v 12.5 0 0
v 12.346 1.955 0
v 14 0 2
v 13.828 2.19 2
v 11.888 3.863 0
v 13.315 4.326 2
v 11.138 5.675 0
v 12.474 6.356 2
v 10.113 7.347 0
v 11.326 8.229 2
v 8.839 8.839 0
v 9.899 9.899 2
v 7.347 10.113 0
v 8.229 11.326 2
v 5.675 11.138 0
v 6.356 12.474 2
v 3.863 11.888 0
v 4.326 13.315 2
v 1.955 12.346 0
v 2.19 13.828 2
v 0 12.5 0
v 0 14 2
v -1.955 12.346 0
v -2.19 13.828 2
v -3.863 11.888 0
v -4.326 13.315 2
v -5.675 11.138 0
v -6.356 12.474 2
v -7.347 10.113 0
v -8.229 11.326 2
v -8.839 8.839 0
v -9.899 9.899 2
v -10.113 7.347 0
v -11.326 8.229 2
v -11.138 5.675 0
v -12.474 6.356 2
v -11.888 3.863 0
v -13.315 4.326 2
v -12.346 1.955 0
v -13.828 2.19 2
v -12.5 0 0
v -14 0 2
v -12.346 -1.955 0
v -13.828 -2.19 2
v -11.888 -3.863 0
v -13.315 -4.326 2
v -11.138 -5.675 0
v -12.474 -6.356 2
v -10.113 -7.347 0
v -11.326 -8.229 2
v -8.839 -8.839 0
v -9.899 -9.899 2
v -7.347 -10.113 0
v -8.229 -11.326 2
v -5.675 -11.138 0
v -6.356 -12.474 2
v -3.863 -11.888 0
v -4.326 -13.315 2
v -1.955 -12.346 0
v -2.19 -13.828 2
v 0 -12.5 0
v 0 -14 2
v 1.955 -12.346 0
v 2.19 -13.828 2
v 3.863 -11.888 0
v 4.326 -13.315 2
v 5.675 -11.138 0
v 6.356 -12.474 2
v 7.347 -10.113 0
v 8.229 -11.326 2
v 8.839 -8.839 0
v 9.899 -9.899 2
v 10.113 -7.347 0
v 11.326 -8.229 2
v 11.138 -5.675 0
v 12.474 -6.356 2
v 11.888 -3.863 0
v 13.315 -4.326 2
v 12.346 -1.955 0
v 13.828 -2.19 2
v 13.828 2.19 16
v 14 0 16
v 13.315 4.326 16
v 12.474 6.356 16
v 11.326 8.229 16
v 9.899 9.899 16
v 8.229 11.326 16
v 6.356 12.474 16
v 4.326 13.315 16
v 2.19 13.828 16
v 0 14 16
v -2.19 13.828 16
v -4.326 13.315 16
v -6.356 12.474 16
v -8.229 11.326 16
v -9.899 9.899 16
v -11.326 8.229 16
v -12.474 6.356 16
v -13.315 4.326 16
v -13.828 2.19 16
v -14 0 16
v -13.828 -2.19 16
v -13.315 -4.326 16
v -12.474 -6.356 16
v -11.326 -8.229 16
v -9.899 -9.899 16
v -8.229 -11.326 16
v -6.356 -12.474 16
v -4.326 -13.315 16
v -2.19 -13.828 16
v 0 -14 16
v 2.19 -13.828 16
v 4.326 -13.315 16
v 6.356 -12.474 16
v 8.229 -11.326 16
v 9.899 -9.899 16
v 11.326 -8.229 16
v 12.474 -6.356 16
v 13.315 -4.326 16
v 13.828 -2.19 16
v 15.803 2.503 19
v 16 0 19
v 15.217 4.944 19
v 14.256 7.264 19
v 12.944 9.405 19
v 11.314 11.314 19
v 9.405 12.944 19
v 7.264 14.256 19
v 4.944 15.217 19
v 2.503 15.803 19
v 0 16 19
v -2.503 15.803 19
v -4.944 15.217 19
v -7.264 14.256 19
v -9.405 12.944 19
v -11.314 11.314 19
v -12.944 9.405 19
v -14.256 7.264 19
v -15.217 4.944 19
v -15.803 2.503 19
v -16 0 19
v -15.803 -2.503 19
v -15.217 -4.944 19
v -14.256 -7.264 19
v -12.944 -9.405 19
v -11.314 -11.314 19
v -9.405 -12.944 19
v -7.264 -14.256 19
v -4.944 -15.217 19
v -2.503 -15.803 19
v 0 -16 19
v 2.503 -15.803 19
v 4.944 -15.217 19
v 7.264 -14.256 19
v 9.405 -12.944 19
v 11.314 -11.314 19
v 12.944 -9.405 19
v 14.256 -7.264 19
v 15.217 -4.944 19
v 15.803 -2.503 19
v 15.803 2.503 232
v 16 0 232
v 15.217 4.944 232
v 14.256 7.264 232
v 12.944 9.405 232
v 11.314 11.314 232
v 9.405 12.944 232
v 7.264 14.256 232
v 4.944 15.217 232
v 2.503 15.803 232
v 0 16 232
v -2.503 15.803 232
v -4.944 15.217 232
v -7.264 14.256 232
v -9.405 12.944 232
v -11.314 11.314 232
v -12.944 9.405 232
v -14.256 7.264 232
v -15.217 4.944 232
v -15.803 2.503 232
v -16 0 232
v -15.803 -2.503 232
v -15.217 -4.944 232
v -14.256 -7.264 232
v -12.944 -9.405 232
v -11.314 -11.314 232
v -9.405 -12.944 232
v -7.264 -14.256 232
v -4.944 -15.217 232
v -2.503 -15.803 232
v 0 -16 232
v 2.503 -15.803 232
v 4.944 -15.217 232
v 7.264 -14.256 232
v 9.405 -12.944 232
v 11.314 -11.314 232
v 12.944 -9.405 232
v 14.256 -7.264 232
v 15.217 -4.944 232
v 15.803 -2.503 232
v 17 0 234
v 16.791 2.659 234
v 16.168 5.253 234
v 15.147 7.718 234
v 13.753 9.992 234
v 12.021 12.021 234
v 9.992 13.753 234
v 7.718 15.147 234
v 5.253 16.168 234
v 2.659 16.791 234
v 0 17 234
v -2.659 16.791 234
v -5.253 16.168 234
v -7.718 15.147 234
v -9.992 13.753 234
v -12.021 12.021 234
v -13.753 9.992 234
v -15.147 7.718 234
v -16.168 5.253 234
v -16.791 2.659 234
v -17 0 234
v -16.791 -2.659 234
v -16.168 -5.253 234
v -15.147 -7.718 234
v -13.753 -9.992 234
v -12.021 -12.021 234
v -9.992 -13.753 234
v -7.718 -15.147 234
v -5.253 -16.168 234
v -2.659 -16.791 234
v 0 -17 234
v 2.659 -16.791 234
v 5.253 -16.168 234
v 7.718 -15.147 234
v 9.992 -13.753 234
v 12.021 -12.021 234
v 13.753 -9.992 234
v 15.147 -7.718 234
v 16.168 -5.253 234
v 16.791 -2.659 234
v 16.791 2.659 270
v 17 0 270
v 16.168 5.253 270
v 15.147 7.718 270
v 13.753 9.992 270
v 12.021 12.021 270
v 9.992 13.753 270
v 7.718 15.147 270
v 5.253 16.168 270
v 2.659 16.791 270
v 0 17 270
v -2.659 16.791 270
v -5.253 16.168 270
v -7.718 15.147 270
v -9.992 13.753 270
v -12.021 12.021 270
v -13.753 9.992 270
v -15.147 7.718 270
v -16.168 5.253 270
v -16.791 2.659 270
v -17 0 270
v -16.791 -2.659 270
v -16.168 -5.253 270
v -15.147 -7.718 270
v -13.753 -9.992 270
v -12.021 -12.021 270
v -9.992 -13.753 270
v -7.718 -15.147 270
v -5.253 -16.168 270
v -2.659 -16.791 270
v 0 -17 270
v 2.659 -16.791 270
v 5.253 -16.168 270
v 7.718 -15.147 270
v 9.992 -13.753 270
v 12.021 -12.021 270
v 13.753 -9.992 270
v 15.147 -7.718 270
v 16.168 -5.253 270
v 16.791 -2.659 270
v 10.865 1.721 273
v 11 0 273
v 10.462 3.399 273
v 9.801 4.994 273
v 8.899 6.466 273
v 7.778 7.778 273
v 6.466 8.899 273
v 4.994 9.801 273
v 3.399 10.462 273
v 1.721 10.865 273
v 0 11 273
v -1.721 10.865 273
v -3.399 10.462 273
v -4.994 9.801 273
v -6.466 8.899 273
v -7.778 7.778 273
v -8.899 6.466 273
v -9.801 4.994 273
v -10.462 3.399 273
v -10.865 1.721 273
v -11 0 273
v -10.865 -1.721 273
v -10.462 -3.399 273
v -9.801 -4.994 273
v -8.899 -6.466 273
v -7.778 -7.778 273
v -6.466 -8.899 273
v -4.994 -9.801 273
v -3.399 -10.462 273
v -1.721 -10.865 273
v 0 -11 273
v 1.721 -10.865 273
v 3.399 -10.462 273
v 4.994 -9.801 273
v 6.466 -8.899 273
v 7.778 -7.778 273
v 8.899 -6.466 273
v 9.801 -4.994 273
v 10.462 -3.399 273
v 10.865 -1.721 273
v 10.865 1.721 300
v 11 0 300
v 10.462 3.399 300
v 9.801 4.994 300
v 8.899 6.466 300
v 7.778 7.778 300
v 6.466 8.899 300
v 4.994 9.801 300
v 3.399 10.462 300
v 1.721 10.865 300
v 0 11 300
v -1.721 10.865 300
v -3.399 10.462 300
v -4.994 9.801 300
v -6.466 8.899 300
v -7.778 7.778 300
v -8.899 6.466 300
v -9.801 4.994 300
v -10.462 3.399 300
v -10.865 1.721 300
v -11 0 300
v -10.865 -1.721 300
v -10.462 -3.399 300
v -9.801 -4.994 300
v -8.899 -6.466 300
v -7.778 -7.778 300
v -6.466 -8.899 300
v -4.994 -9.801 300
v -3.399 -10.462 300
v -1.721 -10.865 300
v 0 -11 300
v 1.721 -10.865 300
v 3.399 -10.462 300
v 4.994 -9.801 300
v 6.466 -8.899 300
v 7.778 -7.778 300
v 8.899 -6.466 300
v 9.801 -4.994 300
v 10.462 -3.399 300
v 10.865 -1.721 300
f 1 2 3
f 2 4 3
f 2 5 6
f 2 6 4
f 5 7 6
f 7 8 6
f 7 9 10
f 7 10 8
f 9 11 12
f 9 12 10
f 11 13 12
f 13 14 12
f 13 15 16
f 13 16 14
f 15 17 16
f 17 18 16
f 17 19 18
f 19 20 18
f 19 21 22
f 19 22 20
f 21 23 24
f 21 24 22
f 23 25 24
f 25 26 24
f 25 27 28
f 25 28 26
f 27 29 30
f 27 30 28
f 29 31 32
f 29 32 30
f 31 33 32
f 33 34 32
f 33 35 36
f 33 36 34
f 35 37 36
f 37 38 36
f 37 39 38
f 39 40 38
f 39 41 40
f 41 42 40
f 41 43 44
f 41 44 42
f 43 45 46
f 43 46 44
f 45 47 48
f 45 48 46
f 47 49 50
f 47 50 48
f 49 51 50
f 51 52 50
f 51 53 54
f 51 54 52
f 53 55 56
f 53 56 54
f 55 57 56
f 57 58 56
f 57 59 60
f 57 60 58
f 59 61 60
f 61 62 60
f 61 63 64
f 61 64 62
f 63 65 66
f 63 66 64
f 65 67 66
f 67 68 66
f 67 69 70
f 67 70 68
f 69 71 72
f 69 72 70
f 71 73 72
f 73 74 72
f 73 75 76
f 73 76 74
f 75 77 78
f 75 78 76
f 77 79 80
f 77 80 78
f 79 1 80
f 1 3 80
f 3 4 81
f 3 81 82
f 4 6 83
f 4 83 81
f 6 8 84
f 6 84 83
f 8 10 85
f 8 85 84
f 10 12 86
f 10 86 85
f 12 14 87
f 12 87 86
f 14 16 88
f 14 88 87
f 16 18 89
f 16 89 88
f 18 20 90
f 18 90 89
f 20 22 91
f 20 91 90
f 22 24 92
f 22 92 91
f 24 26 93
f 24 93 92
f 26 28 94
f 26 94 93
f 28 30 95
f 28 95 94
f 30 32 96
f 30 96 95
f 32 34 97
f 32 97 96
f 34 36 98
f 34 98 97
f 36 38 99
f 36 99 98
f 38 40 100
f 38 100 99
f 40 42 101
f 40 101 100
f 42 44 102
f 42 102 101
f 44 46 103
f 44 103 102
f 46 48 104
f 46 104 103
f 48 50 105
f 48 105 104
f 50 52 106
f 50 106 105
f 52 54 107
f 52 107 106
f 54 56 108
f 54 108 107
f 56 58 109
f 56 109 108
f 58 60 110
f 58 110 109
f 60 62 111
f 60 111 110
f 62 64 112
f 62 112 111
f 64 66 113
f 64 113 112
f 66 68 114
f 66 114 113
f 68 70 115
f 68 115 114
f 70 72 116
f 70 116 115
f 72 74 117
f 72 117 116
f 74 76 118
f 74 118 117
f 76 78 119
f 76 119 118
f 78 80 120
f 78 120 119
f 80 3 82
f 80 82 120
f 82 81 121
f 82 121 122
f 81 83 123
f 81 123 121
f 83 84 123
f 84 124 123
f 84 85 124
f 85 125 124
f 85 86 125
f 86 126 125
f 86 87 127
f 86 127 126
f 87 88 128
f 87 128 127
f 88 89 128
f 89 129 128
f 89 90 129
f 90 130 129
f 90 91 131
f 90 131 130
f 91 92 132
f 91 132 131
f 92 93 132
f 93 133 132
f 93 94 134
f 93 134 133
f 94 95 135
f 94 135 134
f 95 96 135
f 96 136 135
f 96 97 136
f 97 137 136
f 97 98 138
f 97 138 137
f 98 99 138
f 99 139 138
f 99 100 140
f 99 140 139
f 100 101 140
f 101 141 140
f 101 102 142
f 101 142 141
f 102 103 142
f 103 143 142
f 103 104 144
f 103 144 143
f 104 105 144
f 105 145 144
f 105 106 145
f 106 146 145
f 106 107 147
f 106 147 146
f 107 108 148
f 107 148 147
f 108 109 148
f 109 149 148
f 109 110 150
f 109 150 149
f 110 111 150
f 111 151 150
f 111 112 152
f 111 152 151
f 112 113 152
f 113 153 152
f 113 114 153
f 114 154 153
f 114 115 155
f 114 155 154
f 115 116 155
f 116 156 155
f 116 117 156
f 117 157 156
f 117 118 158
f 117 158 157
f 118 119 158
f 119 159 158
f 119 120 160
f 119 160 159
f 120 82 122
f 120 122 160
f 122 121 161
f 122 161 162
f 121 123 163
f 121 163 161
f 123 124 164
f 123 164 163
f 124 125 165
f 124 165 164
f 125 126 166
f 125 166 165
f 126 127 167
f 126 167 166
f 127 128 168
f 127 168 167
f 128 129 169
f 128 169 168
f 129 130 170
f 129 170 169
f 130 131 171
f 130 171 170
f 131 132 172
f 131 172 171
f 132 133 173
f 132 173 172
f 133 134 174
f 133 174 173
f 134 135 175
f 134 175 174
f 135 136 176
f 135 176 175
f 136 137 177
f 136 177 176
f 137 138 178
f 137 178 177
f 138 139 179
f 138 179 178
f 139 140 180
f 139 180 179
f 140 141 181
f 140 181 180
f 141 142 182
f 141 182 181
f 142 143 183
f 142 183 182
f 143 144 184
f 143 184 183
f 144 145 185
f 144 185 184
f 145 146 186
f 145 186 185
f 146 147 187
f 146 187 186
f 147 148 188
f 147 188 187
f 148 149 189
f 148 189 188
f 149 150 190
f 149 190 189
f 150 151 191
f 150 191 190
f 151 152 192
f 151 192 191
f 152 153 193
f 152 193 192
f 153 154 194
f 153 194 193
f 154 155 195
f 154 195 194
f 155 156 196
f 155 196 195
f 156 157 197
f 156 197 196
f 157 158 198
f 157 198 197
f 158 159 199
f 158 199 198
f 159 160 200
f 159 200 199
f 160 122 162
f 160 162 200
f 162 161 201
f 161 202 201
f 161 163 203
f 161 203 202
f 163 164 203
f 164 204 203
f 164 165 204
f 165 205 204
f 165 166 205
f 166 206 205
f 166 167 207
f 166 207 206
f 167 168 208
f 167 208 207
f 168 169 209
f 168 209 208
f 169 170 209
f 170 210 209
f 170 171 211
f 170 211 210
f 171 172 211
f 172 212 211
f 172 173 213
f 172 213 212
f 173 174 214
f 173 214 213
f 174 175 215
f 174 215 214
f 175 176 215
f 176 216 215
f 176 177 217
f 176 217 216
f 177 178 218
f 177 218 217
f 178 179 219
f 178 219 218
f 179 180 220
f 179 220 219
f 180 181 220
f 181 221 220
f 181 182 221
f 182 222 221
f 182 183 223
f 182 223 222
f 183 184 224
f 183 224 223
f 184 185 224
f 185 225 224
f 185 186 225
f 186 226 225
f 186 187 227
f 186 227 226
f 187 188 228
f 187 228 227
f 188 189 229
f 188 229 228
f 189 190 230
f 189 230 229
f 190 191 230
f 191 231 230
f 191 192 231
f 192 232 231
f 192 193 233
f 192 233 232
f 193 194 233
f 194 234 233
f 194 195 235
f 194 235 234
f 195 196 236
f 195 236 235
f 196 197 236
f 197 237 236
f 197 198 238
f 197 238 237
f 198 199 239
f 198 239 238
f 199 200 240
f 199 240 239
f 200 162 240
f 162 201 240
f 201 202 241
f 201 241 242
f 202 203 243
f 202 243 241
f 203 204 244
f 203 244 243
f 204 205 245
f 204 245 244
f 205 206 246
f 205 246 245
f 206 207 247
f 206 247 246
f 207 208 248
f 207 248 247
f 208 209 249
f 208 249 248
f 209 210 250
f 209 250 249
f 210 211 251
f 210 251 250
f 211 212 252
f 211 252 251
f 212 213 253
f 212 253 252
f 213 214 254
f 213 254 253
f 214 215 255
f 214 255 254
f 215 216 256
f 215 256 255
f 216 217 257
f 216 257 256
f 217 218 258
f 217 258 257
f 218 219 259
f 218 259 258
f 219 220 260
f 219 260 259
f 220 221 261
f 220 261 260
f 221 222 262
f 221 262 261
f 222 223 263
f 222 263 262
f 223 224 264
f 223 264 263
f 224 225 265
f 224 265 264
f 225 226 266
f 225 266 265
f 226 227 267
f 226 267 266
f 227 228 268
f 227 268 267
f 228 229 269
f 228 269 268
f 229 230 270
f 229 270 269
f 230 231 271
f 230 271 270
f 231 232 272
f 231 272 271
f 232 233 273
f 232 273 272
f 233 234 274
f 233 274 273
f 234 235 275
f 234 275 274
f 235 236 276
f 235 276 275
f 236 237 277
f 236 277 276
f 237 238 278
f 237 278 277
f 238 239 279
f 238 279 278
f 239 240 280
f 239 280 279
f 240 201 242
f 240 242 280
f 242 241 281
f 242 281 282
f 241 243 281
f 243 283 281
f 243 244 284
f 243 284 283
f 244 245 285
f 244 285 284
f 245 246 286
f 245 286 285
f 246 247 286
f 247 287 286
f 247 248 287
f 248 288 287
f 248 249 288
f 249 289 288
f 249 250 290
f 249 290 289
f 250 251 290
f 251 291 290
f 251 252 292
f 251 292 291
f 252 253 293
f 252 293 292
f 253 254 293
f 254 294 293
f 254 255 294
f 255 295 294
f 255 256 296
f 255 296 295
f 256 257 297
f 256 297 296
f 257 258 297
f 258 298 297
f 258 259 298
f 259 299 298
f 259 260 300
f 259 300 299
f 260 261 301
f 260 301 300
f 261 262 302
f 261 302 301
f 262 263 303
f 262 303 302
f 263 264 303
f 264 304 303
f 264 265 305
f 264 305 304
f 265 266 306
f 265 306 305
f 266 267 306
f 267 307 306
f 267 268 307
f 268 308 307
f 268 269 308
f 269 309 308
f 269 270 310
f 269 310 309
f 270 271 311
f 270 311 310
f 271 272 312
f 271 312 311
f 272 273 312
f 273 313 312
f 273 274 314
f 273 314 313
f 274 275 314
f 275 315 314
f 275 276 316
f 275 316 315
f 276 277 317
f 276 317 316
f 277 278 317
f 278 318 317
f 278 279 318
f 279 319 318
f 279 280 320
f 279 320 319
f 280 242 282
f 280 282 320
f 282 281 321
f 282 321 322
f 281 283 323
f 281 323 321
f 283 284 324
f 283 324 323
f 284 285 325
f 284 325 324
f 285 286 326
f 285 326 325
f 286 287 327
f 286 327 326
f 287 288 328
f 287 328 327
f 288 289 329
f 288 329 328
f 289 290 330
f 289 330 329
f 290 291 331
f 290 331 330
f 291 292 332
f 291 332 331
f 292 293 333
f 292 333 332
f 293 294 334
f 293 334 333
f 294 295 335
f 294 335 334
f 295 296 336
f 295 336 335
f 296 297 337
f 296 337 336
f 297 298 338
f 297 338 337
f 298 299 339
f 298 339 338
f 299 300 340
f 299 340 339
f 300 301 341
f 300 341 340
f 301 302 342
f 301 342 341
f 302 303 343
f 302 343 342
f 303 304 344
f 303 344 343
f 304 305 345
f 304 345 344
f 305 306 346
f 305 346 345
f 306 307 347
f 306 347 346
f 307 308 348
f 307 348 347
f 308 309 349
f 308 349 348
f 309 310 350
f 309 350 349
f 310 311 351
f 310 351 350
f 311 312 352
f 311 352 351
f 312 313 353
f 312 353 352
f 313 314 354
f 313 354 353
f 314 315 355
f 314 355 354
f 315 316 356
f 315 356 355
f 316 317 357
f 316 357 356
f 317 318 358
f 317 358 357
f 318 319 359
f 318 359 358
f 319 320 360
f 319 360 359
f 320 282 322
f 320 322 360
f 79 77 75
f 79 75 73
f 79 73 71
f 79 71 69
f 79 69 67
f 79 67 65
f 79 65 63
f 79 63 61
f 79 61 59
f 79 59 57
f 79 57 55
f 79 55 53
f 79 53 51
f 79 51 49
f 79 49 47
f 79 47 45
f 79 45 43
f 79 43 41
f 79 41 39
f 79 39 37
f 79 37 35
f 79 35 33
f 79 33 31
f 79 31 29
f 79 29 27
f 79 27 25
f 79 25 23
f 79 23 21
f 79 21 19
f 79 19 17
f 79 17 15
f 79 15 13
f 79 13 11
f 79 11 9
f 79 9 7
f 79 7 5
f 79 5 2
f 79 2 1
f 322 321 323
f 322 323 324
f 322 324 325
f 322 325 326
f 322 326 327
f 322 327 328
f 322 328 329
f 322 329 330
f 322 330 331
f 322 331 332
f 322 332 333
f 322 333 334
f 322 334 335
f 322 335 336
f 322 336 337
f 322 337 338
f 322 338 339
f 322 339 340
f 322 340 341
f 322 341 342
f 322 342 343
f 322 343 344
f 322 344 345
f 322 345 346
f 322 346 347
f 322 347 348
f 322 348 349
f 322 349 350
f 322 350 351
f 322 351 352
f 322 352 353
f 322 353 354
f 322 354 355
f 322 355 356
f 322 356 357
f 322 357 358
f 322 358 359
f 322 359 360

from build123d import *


with BuildPart() as part:
    # Revolve profile 1 → Revolve 1 (revolve)
    with BuildSketch(Plane(origin=(0, 0, 0), x_dir=(1, 0, 0), z_dir=(0, 1, 0)), mode=Mode.PRIVATE) as revolve_1_sk:
        Polygon((0, -300), (0, 0), (12.5, 0), (14, -2), (14, -16), (16, -19), (16, -232), (17, -234), (17, -270), (11, -273), (11, -300), align=None)
    revolve(revolve_1_sk.sketch.rotate(Axis((0, 0, -5), (0, 0, 1)), 180), axis=Axis((0, 0, -5), (0, 0, 1)))


solid = part.part
